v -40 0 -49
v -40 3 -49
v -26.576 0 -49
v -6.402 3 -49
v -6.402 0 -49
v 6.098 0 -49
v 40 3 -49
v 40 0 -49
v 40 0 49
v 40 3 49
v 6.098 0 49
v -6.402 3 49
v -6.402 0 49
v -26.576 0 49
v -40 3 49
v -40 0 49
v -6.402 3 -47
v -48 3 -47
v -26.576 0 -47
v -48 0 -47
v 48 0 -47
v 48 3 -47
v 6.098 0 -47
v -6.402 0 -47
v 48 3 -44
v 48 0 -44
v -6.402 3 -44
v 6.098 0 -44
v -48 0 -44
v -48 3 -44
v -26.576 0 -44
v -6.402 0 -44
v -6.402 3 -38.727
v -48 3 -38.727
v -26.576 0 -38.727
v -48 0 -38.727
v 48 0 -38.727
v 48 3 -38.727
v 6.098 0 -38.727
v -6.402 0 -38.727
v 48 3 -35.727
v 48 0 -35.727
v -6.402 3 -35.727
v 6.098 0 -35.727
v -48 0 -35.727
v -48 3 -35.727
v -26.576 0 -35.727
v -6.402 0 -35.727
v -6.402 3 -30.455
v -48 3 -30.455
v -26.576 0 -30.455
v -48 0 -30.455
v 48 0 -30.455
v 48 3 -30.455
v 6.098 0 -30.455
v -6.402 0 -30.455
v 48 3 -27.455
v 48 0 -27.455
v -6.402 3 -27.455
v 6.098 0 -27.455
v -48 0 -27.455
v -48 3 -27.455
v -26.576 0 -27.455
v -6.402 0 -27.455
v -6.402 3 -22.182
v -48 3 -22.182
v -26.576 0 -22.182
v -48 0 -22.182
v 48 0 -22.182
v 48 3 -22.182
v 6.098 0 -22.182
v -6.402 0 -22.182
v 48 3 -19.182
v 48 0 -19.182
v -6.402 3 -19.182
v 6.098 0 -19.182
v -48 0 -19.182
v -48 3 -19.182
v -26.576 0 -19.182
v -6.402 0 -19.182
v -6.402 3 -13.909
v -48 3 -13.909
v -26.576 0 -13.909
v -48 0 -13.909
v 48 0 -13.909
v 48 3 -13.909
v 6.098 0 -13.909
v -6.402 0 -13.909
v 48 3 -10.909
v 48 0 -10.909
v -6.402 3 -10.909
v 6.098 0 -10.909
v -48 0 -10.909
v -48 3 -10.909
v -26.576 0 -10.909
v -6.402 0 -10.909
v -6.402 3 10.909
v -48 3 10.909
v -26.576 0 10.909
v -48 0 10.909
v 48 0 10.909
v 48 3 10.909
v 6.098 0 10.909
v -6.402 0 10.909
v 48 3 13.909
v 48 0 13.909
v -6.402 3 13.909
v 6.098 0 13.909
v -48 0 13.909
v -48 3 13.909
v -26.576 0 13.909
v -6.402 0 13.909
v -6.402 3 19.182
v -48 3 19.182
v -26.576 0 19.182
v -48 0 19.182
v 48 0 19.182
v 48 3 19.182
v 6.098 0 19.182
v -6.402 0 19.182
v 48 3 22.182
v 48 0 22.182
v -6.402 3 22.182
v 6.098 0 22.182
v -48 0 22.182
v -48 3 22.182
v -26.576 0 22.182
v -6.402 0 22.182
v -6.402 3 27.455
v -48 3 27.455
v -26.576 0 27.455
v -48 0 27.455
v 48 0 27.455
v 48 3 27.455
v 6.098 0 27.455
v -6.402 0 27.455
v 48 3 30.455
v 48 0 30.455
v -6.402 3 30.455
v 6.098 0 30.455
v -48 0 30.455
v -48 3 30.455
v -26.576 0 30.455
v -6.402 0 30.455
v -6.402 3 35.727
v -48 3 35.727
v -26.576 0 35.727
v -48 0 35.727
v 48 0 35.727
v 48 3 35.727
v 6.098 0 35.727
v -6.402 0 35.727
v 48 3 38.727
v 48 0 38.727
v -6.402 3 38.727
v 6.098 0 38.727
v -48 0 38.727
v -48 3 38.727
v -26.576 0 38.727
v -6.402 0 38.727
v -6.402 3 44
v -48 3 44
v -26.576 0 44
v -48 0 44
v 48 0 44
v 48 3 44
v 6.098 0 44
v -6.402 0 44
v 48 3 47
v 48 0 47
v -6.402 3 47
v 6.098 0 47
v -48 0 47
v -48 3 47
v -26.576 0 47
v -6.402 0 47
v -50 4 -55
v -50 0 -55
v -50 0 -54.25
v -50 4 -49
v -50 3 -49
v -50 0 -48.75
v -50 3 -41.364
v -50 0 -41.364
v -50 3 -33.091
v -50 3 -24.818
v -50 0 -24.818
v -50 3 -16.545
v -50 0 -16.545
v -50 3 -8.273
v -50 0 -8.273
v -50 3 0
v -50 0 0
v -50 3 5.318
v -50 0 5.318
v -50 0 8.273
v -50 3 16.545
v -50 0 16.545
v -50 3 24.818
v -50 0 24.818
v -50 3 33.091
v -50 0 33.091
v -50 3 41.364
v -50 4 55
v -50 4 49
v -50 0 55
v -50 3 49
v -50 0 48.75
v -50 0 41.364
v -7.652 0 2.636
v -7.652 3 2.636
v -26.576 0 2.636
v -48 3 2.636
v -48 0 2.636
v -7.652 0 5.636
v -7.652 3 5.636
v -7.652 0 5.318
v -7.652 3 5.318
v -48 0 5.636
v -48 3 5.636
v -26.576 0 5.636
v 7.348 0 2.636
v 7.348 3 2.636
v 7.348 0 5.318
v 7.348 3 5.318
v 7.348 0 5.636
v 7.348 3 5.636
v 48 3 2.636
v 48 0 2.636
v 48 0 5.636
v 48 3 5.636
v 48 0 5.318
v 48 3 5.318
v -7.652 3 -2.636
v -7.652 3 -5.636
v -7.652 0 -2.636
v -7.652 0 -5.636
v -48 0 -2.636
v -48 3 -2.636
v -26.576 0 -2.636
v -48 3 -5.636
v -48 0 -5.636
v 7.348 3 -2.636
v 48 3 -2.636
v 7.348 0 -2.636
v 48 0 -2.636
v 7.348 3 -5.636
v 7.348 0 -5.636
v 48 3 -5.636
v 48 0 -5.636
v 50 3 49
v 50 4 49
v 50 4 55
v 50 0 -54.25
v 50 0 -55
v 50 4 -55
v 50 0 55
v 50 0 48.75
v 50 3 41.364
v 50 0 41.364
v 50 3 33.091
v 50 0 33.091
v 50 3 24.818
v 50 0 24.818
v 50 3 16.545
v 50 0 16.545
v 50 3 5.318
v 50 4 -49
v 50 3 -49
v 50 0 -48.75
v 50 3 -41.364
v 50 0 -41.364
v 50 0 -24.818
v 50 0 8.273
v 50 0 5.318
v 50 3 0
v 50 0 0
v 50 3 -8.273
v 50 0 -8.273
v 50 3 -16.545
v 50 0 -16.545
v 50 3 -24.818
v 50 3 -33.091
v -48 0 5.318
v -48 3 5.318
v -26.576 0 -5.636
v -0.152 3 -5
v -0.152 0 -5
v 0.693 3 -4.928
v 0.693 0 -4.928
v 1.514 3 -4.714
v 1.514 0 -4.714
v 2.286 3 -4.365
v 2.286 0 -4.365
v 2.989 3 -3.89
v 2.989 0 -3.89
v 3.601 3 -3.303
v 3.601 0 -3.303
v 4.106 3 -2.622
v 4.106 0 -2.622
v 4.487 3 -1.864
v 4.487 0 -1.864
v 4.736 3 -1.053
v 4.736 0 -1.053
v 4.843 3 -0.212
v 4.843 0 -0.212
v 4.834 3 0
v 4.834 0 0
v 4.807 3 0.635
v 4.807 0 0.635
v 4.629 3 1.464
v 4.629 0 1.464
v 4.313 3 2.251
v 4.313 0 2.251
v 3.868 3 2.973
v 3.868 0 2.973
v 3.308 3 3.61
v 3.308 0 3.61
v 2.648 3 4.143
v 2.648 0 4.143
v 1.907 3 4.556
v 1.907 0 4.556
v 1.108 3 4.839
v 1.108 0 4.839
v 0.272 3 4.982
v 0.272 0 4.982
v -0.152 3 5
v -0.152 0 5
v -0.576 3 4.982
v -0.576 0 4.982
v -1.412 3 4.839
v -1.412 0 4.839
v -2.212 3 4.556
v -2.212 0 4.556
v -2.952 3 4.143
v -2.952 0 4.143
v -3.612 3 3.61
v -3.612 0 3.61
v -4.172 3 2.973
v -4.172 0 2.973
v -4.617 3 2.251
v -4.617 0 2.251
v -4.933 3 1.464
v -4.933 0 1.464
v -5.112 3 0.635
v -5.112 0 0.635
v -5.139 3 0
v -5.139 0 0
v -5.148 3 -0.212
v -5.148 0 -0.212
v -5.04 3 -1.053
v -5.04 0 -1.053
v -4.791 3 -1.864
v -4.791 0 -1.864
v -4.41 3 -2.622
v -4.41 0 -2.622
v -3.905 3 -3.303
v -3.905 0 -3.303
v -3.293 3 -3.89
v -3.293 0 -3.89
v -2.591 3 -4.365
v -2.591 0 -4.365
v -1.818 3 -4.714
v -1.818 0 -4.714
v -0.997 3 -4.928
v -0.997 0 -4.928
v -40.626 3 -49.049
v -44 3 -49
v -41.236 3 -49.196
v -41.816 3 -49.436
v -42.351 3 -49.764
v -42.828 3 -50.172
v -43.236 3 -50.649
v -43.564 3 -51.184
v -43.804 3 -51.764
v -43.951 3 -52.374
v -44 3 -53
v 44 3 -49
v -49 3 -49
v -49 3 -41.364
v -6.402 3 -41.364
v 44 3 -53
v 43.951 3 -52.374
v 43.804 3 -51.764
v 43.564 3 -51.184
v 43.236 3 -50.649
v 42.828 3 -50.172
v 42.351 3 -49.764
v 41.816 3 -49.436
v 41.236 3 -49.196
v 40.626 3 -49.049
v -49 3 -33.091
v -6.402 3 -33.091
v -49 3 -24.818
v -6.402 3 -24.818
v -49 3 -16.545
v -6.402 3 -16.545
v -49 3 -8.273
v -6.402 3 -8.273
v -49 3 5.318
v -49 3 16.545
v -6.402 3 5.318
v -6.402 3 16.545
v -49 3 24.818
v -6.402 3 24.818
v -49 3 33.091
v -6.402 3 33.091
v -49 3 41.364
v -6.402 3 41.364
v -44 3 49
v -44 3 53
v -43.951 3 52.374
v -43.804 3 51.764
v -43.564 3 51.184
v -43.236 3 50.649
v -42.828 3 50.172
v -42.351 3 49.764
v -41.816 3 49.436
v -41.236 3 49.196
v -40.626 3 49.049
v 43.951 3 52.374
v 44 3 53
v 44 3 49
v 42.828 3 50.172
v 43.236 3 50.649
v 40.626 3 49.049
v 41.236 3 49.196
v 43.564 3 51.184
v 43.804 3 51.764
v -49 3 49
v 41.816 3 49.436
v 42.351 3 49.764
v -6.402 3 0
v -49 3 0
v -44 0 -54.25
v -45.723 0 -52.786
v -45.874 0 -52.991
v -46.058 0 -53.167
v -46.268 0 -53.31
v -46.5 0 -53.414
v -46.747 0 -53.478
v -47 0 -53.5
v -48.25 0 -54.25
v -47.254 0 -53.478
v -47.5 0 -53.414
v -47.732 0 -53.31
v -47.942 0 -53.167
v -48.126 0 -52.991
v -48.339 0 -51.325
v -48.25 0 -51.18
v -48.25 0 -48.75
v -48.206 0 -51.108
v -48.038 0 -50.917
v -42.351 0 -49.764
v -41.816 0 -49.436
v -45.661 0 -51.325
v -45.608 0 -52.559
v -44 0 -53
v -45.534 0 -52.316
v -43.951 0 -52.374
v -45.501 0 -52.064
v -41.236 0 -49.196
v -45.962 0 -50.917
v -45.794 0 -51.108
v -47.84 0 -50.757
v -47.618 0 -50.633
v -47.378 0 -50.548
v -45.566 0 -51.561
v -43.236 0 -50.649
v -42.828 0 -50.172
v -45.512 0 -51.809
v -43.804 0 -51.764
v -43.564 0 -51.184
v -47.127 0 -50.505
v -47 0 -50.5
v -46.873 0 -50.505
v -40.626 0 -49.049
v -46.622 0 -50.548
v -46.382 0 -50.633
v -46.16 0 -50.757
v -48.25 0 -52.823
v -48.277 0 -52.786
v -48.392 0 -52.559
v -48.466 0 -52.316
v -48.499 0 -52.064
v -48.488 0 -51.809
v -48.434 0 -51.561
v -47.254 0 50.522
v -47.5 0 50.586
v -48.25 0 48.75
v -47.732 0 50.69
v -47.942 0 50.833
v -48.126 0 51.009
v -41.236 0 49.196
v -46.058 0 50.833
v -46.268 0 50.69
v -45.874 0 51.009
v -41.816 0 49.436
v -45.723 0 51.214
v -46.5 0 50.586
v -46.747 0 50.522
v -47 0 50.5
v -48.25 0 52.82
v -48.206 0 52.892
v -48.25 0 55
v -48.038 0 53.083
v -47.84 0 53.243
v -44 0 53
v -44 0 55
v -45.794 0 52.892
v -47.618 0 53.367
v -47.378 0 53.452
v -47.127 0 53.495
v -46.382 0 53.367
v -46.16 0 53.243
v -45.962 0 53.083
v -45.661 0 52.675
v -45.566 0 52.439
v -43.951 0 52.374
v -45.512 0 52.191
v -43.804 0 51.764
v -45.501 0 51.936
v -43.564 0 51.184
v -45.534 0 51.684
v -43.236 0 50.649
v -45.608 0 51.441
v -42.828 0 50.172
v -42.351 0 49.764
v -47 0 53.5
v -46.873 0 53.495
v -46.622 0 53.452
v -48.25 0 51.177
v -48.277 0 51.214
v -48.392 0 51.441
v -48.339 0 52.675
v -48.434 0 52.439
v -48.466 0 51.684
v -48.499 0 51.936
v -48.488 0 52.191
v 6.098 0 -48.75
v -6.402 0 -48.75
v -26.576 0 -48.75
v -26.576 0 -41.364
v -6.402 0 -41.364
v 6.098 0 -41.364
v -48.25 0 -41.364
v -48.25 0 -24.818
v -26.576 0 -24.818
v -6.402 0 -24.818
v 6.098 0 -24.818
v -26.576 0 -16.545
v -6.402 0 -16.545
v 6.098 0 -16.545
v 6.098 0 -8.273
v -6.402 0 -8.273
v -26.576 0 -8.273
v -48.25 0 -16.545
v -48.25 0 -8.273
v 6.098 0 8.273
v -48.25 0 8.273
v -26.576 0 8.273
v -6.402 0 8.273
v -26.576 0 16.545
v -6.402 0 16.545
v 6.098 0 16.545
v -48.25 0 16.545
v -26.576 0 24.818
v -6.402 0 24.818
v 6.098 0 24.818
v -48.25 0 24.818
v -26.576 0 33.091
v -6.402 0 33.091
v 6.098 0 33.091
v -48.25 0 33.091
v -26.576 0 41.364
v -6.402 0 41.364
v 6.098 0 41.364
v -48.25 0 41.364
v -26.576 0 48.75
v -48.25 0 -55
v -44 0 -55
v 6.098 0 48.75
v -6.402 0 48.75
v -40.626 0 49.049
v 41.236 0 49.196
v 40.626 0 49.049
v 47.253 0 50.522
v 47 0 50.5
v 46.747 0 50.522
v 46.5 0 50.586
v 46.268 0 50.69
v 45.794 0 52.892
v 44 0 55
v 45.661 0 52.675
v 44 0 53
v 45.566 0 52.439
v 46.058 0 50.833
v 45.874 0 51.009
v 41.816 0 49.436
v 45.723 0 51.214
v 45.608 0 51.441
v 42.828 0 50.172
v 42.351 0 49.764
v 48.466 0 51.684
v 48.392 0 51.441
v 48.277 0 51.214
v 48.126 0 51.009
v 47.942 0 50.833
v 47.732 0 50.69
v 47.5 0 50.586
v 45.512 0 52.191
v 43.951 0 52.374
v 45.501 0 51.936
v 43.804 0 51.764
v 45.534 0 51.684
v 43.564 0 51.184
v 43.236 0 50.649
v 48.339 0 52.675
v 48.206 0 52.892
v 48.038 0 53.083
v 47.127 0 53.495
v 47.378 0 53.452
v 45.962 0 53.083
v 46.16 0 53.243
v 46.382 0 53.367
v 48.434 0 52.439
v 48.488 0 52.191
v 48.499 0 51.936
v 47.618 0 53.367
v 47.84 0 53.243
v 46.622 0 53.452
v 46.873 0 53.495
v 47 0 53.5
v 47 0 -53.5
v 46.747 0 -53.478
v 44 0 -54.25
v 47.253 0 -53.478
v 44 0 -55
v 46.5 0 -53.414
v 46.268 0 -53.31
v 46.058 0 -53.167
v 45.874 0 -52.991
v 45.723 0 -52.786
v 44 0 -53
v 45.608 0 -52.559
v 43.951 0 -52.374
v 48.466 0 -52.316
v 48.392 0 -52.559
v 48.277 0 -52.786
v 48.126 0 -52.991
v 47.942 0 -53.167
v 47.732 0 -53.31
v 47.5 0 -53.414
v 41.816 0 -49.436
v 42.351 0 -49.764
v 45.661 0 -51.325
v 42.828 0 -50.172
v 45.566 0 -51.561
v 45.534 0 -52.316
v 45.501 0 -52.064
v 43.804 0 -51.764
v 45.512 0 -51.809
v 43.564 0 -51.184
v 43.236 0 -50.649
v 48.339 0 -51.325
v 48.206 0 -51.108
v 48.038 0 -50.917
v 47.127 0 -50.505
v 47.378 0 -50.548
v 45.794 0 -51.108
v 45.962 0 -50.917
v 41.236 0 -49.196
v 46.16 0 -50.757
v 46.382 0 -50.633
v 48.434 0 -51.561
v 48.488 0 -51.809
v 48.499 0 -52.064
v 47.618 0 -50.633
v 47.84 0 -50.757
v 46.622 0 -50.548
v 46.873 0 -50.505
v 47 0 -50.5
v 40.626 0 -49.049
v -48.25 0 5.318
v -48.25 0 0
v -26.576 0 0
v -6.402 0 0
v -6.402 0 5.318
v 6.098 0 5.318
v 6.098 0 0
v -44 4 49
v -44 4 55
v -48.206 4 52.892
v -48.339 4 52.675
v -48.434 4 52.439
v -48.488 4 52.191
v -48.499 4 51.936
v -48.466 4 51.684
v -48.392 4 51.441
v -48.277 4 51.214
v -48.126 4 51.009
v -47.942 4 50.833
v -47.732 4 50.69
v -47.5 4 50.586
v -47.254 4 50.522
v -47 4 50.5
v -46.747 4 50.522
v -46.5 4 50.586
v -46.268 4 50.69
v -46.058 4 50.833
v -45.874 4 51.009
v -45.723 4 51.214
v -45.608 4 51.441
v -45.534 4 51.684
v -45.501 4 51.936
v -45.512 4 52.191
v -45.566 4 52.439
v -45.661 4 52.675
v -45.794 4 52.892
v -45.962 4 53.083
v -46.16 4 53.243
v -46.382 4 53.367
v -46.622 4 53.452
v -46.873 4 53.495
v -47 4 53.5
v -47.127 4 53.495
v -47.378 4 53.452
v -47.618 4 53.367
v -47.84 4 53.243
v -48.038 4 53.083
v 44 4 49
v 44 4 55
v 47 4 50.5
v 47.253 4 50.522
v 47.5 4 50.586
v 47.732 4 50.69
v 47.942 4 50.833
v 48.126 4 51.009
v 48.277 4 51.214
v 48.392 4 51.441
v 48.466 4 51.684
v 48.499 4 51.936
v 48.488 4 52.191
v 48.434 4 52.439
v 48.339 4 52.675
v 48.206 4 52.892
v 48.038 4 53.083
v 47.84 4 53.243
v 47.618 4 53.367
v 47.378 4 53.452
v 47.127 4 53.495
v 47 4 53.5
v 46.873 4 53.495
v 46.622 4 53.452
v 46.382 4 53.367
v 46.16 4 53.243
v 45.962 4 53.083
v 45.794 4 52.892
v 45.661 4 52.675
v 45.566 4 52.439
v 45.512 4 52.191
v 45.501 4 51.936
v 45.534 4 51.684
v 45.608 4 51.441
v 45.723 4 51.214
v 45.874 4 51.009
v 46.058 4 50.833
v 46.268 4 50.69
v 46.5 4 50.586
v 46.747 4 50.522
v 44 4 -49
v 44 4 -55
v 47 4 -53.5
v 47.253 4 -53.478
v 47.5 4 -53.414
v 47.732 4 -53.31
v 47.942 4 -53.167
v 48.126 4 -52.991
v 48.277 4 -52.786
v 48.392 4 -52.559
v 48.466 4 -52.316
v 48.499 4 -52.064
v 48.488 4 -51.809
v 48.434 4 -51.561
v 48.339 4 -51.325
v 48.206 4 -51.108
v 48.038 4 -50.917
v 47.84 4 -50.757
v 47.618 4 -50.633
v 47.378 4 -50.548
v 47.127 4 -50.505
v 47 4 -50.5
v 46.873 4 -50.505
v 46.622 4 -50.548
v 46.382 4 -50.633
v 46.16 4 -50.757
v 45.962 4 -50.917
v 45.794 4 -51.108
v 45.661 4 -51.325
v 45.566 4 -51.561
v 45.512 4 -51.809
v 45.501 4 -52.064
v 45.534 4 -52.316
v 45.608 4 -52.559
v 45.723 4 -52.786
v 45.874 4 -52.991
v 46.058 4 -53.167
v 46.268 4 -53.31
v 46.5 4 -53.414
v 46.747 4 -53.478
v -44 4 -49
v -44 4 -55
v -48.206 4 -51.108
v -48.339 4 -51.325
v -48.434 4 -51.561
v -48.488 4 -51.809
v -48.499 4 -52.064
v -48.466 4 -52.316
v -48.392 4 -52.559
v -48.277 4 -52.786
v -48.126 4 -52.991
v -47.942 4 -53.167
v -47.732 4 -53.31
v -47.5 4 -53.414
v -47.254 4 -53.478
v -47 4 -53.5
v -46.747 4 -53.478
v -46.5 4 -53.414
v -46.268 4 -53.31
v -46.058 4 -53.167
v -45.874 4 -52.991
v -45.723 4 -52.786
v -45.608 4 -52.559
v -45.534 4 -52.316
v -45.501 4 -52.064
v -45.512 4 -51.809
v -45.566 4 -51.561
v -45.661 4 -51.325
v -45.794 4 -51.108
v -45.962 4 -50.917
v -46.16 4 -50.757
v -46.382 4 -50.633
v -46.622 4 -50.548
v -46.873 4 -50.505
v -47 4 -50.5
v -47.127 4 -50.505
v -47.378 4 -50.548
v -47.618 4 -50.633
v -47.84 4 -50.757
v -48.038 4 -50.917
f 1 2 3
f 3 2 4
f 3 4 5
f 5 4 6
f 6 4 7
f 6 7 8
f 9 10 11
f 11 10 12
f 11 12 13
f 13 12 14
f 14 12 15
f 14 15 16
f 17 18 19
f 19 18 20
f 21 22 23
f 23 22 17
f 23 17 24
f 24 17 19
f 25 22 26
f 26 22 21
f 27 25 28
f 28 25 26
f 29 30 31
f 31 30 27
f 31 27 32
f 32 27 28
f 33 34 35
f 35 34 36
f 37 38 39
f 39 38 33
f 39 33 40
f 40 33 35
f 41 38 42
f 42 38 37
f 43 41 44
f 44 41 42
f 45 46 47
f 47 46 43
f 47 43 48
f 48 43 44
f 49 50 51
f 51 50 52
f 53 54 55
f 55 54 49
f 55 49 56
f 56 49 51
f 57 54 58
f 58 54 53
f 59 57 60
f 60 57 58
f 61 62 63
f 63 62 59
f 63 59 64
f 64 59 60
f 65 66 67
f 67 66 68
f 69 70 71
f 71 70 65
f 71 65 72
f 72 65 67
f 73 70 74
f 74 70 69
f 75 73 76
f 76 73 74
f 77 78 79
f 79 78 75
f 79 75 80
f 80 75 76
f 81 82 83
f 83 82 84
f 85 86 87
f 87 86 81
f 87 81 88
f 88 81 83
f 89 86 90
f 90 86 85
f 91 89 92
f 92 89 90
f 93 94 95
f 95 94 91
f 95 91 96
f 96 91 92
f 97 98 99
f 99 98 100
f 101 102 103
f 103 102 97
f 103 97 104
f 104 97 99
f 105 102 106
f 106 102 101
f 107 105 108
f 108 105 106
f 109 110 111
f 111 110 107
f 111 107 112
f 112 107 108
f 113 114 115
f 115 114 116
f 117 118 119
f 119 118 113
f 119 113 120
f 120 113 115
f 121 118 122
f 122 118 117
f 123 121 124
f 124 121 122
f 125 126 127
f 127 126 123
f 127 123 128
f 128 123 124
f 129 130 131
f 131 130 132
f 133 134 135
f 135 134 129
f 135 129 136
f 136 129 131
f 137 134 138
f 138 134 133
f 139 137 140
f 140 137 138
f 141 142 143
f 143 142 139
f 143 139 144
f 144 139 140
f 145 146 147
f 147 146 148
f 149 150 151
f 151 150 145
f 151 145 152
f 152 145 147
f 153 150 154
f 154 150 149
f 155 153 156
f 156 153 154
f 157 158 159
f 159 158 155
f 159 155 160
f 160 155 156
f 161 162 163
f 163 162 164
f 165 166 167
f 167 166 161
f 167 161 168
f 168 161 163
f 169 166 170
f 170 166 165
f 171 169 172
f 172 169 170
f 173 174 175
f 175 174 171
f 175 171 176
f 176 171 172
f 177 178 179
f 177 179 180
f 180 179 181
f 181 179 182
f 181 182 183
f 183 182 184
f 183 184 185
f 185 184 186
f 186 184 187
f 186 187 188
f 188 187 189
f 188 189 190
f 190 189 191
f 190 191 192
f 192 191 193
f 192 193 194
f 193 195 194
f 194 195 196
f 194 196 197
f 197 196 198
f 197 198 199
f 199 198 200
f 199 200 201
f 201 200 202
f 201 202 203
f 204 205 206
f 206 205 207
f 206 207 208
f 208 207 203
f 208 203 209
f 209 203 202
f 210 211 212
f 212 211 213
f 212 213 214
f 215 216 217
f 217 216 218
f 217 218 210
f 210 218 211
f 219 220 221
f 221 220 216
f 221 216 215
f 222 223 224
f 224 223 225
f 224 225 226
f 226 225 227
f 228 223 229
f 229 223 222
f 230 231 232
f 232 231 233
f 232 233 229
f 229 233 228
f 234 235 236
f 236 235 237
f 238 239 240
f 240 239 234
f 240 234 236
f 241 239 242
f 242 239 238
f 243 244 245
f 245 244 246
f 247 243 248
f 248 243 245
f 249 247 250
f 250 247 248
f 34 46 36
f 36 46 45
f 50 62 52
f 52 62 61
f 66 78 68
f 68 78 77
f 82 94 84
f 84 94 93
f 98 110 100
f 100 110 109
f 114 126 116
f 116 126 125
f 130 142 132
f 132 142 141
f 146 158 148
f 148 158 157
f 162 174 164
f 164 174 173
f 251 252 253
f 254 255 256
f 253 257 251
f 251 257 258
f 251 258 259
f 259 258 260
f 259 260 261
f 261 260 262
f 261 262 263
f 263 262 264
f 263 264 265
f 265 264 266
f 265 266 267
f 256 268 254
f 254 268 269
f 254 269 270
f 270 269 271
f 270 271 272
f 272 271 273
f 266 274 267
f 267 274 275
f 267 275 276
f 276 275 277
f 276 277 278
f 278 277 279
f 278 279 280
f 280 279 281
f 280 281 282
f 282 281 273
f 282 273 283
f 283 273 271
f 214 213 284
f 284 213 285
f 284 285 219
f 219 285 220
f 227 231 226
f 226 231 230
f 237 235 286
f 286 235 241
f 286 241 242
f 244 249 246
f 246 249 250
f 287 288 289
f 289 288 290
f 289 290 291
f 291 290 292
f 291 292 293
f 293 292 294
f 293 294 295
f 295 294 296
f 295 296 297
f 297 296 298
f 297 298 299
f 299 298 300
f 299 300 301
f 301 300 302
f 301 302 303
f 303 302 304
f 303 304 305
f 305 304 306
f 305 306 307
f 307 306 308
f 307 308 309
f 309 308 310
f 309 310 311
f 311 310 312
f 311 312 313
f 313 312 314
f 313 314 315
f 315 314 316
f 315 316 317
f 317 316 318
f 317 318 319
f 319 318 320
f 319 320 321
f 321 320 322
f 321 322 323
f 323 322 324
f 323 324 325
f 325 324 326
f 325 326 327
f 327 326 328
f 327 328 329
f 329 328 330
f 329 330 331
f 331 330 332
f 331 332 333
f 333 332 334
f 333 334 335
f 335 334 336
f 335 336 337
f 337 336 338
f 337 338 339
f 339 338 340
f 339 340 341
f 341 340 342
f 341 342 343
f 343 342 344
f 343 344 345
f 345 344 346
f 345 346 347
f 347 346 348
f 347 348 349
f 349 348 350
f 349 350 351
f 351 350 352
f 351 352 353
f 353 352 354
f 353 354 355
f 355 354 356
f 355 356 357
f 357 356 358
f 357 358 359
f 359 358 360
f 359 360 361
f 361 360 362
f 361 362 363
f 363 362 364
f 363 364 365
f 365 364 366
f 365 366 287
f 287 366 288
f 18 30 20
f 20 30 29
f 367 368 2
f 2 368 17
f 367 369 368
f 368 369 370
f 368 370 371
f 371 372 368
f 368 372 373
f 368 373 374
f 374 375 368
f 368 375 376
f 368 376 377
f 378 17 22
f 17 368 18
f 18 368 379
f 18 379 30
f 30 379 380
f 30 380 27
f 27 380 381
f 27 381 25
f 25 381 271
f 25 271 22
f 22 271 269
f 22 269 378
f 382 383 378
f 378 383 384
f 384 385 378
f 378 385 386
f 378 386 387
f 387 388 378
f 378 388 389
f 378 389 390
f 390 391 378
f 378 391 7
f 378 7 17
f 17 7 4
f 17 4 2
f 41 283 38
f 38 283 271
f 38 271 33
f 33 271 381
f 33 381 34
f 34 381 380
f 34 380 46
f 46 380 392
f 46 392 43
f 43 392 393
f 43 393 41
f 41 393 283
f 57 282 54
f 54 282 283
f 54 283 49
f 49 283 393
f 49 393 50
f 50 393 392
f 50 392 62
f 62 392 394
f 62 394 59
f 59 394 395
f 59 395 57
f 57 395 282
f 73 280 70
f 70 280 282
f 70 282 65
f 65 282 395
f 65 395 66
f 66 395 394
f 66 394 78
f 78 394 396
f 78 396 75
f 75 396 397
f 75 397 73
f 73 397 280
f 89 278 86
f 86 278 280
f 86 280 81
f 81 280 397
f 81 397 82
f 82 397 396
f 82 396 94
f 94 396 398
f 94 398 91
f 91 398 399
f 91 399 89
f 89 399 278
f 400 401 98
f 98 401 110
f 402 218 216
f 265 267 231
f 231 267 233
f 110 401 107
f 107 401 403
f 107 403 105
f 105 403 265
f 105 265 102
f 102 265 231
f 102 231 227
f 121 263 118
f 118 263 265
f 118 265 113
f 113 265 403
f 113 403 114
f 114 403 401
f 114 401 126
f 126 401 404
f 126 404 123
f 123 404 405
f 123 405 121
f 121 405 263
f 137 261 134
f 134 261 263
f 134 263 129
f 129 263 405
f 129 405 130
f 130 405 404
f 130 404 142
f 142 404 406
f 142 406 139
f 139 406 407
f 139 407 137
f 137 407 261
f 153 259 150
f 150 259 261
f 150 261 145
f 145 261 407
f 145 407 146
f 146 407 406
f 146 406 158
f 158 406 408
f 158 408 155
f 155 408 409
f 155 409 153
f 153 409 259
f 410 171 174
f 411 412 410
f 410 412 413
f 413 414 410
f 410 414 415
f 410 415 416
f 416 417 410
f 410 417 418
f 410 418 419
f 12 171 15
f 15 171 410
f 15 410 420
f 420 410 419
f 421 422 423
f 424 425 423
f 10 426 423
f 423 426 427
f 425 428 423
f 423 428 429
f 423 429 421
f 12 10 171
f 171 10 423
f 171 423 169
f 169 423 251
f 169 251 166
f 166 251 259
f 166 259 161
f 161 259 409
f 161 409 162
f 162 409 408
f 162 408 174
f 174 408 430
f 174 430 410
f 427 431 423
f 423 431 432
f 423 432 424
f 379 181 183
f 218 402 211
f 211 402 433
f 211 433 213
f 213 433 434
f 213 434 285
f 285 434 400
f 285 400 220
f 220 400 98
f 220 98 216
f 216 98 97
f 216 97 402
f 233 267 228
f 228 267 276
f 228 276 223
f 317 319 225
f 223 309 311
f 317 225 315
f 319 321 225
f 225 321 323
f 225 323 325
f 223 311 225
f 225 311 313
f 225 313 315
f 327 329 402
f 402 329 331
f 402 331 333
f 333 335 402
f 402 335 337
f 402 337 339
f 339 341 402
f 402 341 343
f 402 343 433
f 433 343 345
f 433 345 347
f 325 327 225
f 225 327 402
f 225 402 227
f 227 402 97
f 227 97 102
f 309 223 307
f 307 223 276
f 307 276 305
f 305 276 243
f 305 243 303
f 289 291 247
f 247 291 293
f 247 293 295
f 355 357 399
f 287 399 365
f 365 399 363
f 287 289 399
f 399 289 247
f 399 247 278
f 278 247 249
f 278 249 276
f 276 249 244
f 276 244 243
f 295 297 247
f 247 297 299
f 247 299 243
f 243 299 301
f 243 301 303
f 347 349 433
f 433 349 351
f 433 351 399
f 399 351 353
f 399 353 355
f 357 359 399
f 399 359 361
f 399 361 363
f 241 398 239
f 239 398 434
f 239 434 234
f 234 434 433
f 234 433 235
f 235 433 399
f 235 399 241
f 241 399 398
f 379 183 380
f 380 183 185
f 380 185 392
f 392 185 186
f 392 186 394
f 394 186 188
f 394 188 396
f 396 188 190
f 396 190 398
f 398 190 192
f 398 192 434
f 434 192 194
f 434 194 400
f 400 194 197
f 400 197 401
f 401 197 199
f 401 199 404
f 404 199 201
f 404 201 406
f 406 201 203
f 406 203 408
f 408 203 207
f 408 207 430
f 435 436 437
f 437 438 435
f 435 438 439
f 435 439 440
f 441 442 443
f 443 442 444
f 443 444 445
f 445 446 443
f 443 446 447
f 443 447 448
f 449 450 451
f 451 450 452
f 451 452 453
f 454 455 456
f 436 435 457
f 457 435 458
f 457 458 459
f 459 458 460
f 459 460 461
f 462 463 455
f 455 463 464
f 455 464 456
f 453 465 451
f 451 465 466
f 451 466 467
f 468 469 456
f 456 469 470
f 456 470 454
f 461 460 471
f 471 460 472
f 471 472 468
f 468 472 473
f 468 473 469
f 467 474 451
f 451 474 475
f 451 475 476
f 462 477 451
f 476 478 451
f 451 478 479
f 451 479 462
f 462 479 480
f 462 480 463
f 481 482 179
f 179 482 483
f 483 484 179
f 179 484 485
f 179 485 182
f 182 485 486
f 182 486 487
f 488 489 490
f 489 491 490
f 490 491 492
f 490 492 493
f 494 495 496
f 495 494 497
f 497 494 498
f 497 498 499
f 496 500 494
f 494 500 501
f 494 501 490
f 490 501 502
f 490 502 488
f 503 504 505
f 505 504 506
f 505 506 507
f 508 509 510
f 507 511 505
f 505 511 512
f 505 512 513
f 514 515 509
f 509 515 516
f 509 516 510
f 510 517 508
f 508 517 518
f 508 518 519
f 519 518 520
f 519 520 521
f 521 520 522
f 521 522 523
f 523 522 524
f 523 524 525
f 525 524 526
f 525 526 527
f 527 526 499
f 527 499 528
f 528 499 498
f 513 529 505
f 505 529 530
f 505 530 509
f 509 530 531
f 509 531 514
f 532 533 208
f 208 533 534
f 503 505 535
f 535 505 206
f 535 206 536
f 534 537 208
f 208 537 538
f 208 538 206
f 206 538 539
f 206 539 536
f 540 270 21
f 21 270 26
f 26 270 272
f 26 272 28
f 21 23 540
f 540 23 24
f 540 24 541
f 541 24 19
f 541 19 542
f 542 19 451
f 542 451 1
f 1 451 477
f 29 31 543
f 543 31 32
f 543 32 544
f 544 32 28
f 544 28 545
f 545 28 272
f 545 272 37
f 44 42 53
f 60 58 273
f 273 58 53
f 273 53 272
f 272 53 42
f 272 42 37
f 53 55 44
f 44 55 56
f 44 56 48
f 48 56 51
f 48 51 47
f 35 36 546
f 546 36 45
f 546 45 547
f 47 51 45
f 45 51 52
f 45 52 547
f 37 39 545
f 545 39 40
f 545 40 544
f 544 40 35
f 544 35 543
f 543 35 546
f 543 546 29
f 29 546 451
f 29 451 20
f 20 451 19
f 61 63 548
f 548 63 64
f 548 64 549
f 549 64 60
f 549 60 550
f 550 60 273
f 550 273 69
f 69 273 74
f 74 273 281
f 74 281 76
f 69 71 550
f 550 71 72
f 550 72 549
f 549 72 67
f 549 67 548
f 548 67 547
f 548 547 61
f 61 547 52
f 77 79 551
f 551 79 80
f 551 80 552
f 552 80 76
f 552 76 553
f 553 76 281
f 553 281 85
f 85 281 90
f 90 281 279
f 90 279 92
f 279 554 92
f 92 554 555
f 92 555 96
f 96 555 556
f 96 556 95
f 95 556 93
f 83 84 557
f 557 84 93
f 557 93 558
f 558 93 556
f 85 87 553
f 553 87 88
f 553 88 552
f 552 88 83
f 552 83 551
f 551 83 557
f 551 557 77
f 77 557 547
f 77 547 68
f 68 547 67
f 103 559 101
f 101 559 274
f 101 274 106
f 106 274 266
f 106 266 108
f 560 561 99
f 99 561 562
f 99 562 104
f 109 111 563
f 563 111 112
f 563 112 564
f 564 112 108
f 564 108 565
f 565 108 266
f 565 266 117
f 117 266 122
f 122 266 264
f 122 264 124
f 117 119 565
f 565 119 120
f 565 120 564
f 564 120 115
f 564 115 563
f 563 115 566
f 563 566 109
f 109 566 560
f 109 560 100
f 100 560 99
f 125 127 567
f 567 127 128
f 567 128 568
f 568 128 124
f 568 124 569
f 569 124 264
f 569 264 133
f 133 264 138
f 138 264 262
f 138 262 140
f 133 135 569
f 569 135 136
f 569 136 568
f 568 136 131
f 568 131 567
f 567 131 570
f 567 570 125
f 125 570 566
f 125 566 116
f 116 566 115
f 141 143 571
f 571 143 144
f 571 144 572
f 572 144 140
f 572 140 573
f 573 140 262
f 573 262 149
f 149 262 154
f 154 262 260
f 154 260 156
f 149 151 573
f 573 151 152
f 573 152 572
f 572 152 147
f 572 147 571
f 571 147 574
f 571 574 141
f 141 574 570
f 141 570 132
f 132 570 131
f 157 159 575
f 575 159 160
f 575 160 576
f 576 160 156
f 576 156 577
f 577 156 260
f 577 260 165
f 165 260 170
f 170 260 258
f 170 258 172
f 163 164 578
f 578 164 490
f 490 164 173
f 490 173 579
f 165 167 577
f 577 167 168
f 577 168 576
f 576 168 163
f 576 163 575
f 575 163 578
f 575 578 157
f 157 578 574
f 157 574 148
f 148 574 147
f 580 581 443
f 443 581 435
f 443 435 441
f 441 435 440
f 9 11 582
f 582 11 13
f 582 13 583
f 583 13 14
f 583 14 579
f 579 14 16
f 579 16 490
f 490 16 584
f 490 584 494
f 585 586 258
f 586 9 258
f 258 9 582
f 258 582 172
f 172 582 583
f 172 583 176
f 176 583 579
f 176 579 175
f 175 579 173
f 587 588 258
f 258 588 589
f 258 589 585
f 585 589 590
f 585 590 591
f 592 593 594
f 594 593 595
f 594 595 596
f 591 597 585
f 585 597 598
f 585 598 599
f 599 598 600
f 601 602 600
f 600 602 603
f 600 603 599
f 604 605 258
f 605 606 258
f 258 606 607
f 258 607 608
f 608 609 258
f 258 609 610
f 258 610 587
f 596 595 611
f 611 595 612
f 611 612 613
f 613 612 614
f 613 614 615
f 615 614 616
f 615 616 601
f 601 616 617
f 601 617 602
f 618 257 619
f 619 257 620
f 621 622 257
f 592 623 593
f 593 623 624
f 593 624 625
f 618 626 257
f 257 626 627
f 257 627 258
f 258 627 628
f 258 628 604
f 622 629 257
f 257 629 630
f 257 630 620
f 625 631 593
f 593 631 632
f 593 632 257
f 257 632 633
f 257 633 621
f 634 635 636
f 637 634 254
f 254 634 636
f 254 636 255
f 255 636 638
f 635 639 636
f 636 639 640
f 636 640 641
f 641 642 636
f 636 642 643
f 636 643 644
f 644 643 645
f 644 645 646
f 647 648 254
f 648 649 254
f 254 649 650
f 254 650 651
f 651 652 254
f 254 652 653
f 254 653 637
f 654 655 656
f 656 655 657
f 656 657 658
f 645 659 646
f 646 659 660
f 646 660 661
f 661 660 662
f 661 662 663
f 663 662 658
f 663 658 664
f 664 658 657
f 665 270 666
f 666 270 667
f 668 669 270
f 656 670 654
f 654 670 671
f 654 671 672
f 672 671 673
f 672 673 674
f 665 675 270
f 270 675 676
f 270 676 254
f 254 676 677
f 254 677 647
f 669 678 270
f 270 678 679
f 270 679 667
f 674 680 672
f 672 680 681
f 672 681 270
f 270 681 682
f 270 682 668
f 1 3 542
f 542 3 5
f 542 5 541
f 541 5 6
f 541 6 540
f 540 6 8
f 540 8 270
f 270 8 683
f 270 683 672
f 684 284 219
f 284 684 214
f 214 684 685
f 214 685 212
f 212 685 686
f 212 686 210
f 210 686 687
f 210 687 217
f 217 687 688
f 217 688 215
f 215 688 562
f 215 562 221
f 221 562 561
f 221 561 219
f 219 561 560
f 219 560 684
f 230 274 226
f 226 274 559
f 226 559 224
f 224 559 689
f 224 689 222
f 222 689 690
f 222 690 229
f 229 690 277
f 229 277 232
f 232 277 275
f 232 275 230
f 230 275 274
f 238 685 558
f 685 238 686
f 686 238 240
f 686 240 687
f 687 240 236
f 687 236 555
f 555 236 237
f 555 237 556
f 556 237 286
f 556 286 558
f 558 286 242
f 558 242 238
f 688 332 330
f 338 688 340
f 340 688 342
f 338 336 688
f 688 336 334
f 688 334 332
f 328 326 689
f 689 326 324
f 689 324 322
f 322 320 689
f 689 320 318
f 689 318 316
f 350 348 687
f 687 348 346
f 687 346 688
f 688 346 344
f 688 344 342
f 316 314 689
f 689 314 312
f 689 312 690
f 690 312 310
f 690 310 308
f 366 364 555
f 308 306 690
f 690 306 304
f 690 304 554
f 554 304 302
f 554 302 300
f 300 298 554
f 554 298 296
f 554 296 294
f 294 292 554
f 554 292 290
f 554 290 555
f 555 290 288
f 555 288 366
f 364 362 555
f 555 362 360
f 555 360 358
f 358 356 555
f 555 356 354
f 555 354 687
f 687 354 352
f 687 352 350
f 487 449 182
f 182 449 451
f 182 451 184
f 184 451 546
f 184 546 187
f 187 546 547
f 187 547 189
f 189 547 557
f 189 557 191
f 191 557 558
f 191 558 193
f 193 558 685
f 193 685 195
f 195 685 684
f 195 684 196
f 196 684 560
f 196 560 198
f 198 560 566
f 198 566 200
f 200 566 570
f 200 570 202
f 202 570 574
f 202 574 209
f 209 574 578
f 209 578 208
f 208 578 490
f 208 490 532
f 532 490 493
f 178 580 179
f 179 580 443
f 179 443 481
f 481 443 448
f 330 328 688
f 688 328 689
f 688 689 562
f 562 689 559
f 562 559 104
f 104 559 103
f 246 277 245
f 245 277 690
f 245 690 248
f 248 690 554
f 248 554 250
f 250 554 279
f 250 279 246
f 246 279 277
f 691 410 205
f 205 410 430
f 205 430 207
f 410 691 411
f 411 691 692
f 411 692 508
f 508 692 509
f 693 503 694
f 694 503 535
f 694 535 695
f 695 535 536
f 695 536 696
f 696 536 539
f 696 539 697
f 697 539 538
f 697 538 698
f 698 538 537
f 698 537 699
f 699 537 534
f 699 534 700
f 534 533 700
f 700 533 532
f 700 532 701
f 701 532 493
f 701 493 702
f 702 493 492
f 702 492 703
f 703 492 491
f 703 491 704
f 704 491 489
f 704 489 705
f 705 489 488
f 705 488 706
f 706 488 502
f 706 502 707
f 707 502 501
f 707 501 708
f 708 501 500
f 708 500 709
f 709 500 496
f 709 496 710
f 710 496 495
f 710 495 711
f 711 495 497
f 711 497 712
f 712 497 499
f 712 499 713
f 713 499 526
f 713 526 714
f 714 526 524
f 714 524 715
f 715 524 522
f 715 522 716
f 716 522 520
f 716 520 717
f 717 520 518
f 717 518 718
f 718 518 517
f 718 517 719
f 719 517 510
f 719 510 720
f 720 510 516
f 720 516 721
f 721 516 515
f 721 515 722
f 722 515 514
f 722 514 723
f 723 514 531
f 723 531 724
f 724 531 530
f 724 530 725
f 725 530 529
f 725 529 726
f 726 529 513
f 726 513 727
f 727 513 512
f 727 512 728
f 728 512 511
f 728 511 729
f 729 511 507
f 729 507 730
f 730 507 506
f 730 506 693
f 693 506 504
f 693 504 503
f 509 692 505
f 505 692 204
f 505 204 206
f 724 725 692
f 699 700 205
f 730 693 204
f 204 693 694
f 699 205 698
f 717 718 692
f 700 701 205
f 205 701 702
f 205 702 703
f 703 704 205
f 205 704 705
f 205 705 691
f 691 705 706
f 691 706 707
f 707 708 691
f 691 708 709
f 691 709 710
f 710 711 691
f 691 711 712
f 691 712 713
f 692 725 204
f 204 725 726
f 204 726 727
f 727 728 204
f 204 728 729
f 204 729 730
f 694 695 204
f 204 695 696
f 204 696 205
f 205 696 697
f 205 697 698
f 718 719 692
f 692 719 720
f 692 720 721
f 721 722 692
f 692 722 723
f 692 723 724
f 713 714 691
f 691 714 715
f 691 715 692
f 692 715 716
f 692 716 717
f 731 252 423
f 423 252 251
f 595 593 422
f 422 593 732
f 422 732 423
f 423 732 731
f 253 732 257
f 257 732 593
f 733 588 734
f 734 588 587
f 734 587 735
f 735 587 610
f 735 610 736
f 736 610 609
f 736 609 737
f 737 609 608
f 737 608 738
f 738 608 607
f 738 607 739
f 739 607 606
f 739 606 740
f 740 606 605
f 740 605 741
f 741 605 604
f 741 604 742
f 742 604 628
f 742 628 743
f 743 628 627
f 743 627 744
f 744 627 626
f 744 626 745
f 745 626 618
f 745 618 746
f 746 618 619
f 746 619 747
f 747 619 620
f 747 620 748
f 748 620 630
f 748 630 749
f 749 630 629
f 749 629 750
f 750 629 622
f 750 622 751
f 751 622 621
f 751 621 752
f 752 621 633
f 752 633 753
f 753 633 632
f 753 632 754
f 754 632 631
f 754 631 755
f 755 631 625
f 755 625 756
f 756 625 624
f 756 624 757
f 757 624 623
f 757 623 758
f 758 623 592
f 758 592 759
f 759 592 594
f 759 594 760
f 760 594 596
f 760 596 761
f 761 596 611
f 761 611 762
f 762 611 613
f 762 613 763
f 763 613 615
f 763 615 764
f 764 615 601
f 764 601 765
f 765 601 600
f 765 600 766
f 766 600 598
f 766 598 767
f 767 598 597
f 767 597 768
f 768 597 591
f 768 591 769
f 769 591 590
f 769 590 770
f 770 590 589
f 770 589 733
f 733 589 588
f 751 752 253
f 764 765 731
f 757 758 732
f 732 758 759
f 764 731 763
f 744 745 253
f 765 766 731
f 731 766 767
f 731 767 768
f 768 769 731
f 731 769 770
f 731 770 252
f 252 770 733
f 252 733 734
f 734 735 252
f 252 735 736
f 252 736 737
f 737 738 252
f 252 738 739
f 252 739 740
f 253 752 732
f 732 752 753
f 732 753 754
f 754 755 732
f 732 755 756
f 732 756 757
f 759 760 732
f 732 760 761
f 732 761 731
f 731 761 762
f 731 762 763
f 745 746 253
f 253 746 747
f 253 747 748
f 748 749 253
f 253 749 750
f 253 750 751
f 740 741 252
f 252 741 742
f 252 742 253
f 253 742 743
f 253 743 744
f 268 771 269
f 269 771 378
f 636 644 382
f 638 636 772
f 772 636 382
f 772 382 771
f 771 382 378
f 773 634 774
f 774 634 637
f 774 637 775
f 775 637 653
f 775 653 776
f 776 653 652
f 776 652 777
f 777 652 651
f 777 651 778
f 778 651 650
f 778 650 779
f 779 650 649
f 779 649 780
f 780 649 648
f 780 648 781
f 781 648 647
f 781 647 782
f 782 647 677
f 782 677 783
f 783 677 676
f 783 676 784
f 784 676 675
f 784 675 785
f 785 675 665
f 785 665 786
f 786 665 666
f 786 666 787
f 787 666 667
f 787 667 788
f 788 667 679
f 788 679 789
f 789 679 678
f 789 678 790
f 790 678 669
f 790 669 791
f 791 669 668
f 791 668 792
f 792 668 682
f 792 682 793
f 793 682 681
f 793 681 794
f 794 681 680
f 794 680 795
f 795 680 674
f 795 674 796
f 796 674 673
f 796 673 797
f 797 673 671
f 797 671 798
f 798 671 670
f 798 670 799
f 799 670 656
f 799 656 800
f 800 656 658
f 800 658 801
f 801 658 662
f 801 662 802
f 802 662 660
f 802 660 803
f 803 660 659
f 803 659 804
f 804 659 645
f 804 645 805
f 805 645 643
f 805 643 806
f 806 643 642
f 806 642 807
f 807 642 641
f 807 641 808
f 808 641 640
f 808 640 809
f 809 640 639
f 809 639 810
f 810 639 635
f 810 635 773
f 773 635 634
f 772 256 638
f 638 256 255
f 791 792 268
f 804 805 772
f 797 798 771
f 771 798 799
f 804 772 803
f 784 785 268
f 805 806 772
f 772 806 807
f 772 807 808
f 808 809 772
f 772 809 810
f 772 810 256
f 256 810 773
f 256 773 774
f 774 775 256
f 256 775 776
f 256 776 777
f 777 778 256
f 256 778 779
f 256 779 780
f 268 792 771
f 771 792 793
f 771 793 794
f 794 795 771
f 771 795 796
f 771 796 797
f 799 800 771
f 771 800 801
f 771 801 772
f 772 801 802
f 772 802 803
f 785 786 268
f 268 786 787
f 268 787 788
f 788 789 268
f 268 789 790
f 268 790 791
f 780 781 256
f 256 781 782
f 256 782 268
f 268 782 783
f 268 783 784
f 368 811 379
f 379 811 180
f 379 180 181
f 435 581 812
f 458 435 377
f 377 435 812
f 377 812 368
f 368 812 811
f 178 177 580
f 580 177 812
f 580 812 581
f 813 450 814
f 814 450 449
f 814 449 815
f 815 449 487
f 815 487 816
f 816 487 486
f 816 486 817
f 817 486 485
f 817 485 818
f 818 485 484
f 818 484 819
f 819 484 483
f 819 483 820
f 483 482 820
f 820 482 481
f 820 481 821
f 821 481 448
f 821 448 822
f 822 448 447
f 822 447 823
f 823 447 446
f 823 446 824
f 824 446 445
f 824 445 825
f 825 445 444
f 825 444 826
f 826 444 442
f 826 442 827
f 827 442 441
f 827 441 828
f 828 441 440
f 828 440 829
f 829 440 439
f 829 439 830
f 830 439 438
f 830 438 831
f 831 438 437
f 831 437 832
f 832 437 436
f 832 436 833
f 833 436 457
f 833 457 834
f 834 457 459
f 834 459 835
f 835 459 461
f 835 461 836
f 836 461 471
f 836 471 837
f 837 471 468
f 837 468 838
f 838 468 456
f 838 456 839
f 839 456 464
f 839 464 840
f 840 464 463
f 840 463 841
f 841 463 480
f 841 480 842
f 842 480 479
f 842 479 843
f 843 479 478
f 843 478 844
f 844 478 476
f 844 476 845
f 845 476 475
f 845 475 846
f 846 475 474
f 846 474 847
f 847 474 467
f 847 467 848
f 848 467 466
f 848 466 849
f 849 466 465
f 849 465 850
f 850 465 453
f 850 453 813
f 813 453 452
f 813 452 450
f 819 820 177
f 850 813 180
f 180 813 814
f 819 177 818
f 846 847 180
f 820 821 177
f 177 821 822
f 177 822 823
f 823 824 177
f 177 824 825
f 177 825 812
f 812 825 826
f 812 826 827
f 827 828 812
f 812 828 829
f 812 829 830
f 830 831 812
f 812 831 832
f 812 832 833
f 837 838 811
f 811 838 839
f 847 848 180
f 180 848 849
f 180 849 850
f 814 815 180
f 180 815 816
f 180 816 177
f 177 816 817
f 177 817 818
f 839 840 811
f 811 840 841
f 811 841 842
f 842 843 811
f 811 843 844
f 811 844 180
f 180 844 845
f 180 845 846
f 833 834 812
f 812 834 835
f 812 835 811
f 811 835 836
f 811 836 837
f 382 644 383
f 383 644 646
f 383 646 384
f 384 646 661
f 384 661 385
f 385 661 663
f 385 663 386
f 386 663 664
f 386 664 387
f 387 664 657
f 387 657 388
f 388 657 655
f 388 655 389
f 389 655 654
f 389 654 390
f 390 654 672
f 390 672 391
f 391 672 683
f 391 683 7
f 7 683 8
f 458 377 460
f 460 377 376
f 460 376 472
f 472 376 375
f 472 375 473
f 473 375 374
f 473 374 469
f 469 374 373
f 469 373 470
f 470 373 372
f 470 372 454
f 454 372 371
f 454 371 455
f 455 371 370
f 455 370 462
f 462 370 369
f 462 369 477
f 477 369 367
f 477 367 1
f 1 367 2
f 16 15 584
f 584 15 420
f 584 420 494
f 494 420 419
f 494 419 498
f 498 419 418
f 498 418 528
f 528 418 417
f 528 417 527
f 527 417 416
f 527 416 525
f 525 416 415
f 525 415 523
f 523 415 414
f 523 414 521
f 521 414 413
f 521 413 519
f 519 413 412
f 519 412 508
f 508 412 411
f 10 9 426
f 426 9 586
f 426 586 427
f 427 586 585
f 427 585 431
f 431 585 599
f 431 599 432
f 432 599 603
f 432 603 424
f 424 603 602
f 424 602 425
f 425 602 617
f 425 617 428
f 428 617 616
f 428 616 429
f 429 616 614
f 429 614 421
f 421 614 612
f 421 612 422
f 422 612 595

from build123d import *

# Parameters (mm, degrees)
SKETCH1_W           = 100
SKETCH1_H           = 98
SKETCH1_W_2         = 96
SKETCH1_H_2         = 3
SKETCH1_W_3         = 40.347954038
SKETCH1_W_4         = 40.652045962
SKETCH1_R           = 5
BOSS_EXTRUDE4_DEPTH = 3
SKETCH1_8_W         = 6
SKETCH1_8_H         = 6
SKETCH1_8_R         = 1.5
BOSS_EXTRUDE6_DEPTH = 4
FILLET3_R           = 4


with BuildPart() as part:
    # Sketch1 → Boss-Extrude4 (new body)
    with BuildSketch(Plane(origin=(0, 0, 0), x_dir=(1, 0, 0), z_dir=(0, 1, 0))):
        Rectangle(SKETCH1_W, SKETCH1_H)
        with Locations((0, -37.227272727)):
            Rectangle(SKETCH1_W_2, SKETCH1_H_2, mode=Mode.SUBTRACT)
        with Locations((0, -28.954545455)):
            Rectangle(SKETCH1_W_2, SKETCH1_H_2, mode=Mode.SUBTRACT)
        with Locations((0, -20.681818182)):
            Rectangle(SKETCH1_W_2, SKETCH1_H_2, mode=Mode.SUBTRACT)
        with Locations((0, -12.409090909)):
            Rectangle(SKETCH1_W_2, SKETCH1_H_2, mode=Mode.SUBTRACT)
        with Locations((0, -45.5)):
            Rectangle(SKETCH1_W_2, SKETCH1_H_2, mode=Mode.SUBTRACT)
        with Locations((-27.826022981, -4.136363636)):
            Rectangle(SKETCH1_W_3, SKETCH1_H_2, mode=Mode.SUBTRACT)
        with Locations((27.673977019, -4.136363636)):
            Rectangle(SKETCH1_W_4, SKETCH1_H_2, mode=Mode.SUBTRACT)
        with Locations((27.673977019, 4.136363636)):
            Rectangle(SKETCH1_W_4, SKETCH1_H_2, mode=Mode.SUBTRACT)
        with Locations((-27.826022981, 4.136363636)):
            Rectangle(SKETCH1_W_3, SKETCH1_H_2, mode=Mode.SUBTRACT)
        with Locations((0, 12.409090909)):
            Rectangle(SKETCH1_W_2, SKETCH1_H_2, mode=Mode.SUBTRACT)
        with Locations((0, 20.681818182)):
            Rectangle(SKETCH1_W_2, SKETCH1_H_2, mode=Mode.SUBTRACT)
        with Locations((0, 28.954545455)):
            Rectangle(SKETCH1_W_2, SKETCH1_H_2, mode=Mode.SUBTRACT)
        with Locations((0, 37.227272727)):
            Rectangle(SKETCH1_W_2, SKETCH1_H_2, mode=Mode.SUBTRACT)
        with Locations((0, 45.5)):
            Rectangle(SKETCH1_W_2, SKETCH1_H_2, mode=Mode.SUBTRACT)
        with Locations((-0.152045962, 0)):
            Circle(SKETCH1_R, mode=Mode.SUBTRACT)
    extrude(amount=BOSS_EXTRUDE4_DEPTH)

    # Sketch1<8> → Boss-Extrude6 (add)
    # profile 1 of 4: a face of its own
    with BuildSketch(Plane(origin=(0, 0, 0), x_dir=(1, 0, 0), z_dir=(0, 1, 0))):
        with Locations((47, 52)):
            Rectangle(SKETCH1_8_W, SKETCH1_8_H)
        with Locations((47, 52)):
            Circle(SKETCH1_8_R, mode=Mode.SUBTRACT)
    # profile 2 of 4: a face of its own
    with BuildSketch(Plane(origin=(0, 0, 0), x_dir=(1, 0, 0), z_dir=(0, 1, 0))):
        with Locations((47, -52)):
            Rectangle(SKETCH1_8_W, SKETCH1_8_H)
        with Locations((47, -52)):
            Circle(SKETCH1_8_R, mode=Mode.SUBTRACT)
    # profile 3 of 4: a face of its own
    with BuildSketch(Plane(origin=(0, 0, 0), x_dir=(1, 0, 0), z_dir=(0, 1, 0))):
        with Locations((-47, 52)):
            Rectangle(SKETCH1_8_W, SKETCH1_8_H)
        with Locations((-47, 52)):
            Circle(SKETCH1_8_R, mode=Mode.SUBTRACT)
    # profile 4 of 4: a face of its own
    with BuildSketch(Plane(origin=(0, 0, 0), x_dir=(1, 0, 0), z_dir=(0, 1, 0))):
        with Locations((-47, -52)):
            Rectangle(SKETCH1_8_W, SKETCH1_8_H)
        with Locations((-47, -52)):
            Circle(SKETCH1_8_R, mode=Mode.SUBTRACT)
    extrude(amount=BOSS_EXTRUDE6_DEPTH)

    # Fillet3
    fillet3_edges = [part.edges().sort_by_distance(p)[0] for p in [
        (44, 1.5, -49),
        (-44, 1.5, -49),
        (-44, 1.5, 49),
        (44, 1.5, 49),
    ]]
    fillet(fillet3_edges, radius=FILLET3_R)


solid = part.part
